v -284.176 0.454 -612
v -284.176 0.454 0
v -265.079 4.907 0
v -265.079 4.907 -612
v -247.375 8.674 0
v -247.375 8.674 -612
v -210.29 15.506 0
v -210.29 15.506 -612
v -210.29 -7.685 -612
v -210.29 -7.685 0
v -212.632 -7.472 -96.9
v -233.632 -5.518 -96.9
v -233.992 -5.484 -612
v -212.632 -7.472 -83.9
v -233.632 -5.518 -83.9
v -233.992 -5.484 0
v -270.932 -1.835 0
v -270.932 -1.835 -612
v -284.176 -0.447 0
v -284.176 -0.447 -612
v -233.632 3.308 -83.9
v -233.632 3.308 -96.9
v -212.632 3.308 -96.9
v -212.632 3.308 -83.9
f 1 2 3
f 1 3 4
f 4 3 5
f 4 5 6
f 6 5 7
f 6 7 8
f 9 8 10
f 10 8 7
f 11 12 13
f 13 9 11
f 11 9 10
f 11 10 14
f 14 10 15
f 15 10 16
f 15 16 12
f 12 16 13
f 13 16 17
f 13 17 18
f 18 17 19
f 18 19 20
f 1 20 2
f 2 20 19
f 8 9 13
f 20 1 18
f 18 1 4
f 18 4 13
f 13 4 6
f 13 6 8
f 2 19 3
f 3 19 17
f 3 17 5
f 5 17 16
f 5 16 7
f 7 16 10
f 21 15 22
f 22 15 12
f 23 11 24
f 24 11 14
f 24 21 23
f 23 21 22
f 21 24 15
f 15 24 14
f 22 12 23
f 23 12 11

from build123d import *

# Parameters (mm, degrees)
BOSS_EXTRUDE1_DEPTH = 612
SKETCH2_W           = 21
SKETCH2_H           = 11.5
CUT_EXTRUDE1_DEPTH  = 13


with BuildPart() as part:
    # Sketch1 → Boss-Extrude1 (new body)
    with BuildSketch(Plane.XY):
        with BuildLine():
            Line((-210.29024, 15.505831452), (-210.29024, -7.684831645))
            add(Edge.make_bspline(
                [(-210.29024, -7.684831645), (-212.158655952, -7.515448816), (-217.124973789, -7.06522307), (-225.019553341, -6.331687852), (-233.787735511, -5.505727752), (-241.996045088, -4.71925279), (-249.592304467, -3.9801145), (-256.527861272, -3.294770041), (-262.758082866, -2.670079607), (-268.242600772, -2.111780802), (-272.945834406, -1.628193193), (-276.836698489, -1.219072841), (-279.890503934, -0.906023666), (-282.084971372, -0.653321358), (-283.409976301, -0.546659805), (-284.007600869, -0.445986487), (-284.166073983, -0.446550556), (-284.176, -0.446585887)],
                knots=[0, 0, 0, 0, 0.075810952, 0.201508279, 0.320388141, 0.43169539, 0.534719075, 0.628797147, 0.713321079, 0.787740393, 0.851567051, 0.904379655, 0.945827345, 0.975633259, 0.993597432, 0.999598973, 1, 1, 1, 1], degree=3))
            Line((-284.176, -0.446585887), (-284.176, 0.453857008))
            add(Edge.make_bspline(
                [(-210.29024, 15.505831452), (-212.448163353, 15.147934069), (-217.698820474, 14.277098484), (-225.855056301, 12.82414284), (-234.573859634, 11.204768289), (-242.716368314, 9.619953964), (-250.234652113, 8.096769218), (-257.084001233, 6.657241094), (-263.224123516, 5.323919979), (-268.619097385, 4.11810916), (-273.237578484, 3.059760068), (-277.052897895, 2.166891095), (-280.04316213, 1.455156882), (-282.19127614, 0.937226777), (-283.475130043, 0.62509225), (-284.041595768, 0.4866944), (-284.176, 0.453857008)],
                knots=[0, 0, 0, 0, 0.087007005, 0.211705365, 0.329527113, 0.439740645, 0.541660709, 0.634652346, 0.718134669, 0.791584505, 0.854539888, 0.906603358, 0.947445002, 0.976805146, 0.994496602, 1, 1, 1, 1], degree=3))
        make_face()
    extrude(amount=-BOSS_EXTRUDE1_DEPTH)

    # Sketch2 → Cut-Extrude1 (cut)
    with BuildSketch(Plane.XY.offset(-96.9)):
        with Locations((-223.132, -2.442)):
            Rectangle(SKETCH2_W, SKETCH2_H)
    extrude(amount=CUT_EXTRUDE1_DEPTH, mode=Mode.SUBTRACT)


solid = part.part
